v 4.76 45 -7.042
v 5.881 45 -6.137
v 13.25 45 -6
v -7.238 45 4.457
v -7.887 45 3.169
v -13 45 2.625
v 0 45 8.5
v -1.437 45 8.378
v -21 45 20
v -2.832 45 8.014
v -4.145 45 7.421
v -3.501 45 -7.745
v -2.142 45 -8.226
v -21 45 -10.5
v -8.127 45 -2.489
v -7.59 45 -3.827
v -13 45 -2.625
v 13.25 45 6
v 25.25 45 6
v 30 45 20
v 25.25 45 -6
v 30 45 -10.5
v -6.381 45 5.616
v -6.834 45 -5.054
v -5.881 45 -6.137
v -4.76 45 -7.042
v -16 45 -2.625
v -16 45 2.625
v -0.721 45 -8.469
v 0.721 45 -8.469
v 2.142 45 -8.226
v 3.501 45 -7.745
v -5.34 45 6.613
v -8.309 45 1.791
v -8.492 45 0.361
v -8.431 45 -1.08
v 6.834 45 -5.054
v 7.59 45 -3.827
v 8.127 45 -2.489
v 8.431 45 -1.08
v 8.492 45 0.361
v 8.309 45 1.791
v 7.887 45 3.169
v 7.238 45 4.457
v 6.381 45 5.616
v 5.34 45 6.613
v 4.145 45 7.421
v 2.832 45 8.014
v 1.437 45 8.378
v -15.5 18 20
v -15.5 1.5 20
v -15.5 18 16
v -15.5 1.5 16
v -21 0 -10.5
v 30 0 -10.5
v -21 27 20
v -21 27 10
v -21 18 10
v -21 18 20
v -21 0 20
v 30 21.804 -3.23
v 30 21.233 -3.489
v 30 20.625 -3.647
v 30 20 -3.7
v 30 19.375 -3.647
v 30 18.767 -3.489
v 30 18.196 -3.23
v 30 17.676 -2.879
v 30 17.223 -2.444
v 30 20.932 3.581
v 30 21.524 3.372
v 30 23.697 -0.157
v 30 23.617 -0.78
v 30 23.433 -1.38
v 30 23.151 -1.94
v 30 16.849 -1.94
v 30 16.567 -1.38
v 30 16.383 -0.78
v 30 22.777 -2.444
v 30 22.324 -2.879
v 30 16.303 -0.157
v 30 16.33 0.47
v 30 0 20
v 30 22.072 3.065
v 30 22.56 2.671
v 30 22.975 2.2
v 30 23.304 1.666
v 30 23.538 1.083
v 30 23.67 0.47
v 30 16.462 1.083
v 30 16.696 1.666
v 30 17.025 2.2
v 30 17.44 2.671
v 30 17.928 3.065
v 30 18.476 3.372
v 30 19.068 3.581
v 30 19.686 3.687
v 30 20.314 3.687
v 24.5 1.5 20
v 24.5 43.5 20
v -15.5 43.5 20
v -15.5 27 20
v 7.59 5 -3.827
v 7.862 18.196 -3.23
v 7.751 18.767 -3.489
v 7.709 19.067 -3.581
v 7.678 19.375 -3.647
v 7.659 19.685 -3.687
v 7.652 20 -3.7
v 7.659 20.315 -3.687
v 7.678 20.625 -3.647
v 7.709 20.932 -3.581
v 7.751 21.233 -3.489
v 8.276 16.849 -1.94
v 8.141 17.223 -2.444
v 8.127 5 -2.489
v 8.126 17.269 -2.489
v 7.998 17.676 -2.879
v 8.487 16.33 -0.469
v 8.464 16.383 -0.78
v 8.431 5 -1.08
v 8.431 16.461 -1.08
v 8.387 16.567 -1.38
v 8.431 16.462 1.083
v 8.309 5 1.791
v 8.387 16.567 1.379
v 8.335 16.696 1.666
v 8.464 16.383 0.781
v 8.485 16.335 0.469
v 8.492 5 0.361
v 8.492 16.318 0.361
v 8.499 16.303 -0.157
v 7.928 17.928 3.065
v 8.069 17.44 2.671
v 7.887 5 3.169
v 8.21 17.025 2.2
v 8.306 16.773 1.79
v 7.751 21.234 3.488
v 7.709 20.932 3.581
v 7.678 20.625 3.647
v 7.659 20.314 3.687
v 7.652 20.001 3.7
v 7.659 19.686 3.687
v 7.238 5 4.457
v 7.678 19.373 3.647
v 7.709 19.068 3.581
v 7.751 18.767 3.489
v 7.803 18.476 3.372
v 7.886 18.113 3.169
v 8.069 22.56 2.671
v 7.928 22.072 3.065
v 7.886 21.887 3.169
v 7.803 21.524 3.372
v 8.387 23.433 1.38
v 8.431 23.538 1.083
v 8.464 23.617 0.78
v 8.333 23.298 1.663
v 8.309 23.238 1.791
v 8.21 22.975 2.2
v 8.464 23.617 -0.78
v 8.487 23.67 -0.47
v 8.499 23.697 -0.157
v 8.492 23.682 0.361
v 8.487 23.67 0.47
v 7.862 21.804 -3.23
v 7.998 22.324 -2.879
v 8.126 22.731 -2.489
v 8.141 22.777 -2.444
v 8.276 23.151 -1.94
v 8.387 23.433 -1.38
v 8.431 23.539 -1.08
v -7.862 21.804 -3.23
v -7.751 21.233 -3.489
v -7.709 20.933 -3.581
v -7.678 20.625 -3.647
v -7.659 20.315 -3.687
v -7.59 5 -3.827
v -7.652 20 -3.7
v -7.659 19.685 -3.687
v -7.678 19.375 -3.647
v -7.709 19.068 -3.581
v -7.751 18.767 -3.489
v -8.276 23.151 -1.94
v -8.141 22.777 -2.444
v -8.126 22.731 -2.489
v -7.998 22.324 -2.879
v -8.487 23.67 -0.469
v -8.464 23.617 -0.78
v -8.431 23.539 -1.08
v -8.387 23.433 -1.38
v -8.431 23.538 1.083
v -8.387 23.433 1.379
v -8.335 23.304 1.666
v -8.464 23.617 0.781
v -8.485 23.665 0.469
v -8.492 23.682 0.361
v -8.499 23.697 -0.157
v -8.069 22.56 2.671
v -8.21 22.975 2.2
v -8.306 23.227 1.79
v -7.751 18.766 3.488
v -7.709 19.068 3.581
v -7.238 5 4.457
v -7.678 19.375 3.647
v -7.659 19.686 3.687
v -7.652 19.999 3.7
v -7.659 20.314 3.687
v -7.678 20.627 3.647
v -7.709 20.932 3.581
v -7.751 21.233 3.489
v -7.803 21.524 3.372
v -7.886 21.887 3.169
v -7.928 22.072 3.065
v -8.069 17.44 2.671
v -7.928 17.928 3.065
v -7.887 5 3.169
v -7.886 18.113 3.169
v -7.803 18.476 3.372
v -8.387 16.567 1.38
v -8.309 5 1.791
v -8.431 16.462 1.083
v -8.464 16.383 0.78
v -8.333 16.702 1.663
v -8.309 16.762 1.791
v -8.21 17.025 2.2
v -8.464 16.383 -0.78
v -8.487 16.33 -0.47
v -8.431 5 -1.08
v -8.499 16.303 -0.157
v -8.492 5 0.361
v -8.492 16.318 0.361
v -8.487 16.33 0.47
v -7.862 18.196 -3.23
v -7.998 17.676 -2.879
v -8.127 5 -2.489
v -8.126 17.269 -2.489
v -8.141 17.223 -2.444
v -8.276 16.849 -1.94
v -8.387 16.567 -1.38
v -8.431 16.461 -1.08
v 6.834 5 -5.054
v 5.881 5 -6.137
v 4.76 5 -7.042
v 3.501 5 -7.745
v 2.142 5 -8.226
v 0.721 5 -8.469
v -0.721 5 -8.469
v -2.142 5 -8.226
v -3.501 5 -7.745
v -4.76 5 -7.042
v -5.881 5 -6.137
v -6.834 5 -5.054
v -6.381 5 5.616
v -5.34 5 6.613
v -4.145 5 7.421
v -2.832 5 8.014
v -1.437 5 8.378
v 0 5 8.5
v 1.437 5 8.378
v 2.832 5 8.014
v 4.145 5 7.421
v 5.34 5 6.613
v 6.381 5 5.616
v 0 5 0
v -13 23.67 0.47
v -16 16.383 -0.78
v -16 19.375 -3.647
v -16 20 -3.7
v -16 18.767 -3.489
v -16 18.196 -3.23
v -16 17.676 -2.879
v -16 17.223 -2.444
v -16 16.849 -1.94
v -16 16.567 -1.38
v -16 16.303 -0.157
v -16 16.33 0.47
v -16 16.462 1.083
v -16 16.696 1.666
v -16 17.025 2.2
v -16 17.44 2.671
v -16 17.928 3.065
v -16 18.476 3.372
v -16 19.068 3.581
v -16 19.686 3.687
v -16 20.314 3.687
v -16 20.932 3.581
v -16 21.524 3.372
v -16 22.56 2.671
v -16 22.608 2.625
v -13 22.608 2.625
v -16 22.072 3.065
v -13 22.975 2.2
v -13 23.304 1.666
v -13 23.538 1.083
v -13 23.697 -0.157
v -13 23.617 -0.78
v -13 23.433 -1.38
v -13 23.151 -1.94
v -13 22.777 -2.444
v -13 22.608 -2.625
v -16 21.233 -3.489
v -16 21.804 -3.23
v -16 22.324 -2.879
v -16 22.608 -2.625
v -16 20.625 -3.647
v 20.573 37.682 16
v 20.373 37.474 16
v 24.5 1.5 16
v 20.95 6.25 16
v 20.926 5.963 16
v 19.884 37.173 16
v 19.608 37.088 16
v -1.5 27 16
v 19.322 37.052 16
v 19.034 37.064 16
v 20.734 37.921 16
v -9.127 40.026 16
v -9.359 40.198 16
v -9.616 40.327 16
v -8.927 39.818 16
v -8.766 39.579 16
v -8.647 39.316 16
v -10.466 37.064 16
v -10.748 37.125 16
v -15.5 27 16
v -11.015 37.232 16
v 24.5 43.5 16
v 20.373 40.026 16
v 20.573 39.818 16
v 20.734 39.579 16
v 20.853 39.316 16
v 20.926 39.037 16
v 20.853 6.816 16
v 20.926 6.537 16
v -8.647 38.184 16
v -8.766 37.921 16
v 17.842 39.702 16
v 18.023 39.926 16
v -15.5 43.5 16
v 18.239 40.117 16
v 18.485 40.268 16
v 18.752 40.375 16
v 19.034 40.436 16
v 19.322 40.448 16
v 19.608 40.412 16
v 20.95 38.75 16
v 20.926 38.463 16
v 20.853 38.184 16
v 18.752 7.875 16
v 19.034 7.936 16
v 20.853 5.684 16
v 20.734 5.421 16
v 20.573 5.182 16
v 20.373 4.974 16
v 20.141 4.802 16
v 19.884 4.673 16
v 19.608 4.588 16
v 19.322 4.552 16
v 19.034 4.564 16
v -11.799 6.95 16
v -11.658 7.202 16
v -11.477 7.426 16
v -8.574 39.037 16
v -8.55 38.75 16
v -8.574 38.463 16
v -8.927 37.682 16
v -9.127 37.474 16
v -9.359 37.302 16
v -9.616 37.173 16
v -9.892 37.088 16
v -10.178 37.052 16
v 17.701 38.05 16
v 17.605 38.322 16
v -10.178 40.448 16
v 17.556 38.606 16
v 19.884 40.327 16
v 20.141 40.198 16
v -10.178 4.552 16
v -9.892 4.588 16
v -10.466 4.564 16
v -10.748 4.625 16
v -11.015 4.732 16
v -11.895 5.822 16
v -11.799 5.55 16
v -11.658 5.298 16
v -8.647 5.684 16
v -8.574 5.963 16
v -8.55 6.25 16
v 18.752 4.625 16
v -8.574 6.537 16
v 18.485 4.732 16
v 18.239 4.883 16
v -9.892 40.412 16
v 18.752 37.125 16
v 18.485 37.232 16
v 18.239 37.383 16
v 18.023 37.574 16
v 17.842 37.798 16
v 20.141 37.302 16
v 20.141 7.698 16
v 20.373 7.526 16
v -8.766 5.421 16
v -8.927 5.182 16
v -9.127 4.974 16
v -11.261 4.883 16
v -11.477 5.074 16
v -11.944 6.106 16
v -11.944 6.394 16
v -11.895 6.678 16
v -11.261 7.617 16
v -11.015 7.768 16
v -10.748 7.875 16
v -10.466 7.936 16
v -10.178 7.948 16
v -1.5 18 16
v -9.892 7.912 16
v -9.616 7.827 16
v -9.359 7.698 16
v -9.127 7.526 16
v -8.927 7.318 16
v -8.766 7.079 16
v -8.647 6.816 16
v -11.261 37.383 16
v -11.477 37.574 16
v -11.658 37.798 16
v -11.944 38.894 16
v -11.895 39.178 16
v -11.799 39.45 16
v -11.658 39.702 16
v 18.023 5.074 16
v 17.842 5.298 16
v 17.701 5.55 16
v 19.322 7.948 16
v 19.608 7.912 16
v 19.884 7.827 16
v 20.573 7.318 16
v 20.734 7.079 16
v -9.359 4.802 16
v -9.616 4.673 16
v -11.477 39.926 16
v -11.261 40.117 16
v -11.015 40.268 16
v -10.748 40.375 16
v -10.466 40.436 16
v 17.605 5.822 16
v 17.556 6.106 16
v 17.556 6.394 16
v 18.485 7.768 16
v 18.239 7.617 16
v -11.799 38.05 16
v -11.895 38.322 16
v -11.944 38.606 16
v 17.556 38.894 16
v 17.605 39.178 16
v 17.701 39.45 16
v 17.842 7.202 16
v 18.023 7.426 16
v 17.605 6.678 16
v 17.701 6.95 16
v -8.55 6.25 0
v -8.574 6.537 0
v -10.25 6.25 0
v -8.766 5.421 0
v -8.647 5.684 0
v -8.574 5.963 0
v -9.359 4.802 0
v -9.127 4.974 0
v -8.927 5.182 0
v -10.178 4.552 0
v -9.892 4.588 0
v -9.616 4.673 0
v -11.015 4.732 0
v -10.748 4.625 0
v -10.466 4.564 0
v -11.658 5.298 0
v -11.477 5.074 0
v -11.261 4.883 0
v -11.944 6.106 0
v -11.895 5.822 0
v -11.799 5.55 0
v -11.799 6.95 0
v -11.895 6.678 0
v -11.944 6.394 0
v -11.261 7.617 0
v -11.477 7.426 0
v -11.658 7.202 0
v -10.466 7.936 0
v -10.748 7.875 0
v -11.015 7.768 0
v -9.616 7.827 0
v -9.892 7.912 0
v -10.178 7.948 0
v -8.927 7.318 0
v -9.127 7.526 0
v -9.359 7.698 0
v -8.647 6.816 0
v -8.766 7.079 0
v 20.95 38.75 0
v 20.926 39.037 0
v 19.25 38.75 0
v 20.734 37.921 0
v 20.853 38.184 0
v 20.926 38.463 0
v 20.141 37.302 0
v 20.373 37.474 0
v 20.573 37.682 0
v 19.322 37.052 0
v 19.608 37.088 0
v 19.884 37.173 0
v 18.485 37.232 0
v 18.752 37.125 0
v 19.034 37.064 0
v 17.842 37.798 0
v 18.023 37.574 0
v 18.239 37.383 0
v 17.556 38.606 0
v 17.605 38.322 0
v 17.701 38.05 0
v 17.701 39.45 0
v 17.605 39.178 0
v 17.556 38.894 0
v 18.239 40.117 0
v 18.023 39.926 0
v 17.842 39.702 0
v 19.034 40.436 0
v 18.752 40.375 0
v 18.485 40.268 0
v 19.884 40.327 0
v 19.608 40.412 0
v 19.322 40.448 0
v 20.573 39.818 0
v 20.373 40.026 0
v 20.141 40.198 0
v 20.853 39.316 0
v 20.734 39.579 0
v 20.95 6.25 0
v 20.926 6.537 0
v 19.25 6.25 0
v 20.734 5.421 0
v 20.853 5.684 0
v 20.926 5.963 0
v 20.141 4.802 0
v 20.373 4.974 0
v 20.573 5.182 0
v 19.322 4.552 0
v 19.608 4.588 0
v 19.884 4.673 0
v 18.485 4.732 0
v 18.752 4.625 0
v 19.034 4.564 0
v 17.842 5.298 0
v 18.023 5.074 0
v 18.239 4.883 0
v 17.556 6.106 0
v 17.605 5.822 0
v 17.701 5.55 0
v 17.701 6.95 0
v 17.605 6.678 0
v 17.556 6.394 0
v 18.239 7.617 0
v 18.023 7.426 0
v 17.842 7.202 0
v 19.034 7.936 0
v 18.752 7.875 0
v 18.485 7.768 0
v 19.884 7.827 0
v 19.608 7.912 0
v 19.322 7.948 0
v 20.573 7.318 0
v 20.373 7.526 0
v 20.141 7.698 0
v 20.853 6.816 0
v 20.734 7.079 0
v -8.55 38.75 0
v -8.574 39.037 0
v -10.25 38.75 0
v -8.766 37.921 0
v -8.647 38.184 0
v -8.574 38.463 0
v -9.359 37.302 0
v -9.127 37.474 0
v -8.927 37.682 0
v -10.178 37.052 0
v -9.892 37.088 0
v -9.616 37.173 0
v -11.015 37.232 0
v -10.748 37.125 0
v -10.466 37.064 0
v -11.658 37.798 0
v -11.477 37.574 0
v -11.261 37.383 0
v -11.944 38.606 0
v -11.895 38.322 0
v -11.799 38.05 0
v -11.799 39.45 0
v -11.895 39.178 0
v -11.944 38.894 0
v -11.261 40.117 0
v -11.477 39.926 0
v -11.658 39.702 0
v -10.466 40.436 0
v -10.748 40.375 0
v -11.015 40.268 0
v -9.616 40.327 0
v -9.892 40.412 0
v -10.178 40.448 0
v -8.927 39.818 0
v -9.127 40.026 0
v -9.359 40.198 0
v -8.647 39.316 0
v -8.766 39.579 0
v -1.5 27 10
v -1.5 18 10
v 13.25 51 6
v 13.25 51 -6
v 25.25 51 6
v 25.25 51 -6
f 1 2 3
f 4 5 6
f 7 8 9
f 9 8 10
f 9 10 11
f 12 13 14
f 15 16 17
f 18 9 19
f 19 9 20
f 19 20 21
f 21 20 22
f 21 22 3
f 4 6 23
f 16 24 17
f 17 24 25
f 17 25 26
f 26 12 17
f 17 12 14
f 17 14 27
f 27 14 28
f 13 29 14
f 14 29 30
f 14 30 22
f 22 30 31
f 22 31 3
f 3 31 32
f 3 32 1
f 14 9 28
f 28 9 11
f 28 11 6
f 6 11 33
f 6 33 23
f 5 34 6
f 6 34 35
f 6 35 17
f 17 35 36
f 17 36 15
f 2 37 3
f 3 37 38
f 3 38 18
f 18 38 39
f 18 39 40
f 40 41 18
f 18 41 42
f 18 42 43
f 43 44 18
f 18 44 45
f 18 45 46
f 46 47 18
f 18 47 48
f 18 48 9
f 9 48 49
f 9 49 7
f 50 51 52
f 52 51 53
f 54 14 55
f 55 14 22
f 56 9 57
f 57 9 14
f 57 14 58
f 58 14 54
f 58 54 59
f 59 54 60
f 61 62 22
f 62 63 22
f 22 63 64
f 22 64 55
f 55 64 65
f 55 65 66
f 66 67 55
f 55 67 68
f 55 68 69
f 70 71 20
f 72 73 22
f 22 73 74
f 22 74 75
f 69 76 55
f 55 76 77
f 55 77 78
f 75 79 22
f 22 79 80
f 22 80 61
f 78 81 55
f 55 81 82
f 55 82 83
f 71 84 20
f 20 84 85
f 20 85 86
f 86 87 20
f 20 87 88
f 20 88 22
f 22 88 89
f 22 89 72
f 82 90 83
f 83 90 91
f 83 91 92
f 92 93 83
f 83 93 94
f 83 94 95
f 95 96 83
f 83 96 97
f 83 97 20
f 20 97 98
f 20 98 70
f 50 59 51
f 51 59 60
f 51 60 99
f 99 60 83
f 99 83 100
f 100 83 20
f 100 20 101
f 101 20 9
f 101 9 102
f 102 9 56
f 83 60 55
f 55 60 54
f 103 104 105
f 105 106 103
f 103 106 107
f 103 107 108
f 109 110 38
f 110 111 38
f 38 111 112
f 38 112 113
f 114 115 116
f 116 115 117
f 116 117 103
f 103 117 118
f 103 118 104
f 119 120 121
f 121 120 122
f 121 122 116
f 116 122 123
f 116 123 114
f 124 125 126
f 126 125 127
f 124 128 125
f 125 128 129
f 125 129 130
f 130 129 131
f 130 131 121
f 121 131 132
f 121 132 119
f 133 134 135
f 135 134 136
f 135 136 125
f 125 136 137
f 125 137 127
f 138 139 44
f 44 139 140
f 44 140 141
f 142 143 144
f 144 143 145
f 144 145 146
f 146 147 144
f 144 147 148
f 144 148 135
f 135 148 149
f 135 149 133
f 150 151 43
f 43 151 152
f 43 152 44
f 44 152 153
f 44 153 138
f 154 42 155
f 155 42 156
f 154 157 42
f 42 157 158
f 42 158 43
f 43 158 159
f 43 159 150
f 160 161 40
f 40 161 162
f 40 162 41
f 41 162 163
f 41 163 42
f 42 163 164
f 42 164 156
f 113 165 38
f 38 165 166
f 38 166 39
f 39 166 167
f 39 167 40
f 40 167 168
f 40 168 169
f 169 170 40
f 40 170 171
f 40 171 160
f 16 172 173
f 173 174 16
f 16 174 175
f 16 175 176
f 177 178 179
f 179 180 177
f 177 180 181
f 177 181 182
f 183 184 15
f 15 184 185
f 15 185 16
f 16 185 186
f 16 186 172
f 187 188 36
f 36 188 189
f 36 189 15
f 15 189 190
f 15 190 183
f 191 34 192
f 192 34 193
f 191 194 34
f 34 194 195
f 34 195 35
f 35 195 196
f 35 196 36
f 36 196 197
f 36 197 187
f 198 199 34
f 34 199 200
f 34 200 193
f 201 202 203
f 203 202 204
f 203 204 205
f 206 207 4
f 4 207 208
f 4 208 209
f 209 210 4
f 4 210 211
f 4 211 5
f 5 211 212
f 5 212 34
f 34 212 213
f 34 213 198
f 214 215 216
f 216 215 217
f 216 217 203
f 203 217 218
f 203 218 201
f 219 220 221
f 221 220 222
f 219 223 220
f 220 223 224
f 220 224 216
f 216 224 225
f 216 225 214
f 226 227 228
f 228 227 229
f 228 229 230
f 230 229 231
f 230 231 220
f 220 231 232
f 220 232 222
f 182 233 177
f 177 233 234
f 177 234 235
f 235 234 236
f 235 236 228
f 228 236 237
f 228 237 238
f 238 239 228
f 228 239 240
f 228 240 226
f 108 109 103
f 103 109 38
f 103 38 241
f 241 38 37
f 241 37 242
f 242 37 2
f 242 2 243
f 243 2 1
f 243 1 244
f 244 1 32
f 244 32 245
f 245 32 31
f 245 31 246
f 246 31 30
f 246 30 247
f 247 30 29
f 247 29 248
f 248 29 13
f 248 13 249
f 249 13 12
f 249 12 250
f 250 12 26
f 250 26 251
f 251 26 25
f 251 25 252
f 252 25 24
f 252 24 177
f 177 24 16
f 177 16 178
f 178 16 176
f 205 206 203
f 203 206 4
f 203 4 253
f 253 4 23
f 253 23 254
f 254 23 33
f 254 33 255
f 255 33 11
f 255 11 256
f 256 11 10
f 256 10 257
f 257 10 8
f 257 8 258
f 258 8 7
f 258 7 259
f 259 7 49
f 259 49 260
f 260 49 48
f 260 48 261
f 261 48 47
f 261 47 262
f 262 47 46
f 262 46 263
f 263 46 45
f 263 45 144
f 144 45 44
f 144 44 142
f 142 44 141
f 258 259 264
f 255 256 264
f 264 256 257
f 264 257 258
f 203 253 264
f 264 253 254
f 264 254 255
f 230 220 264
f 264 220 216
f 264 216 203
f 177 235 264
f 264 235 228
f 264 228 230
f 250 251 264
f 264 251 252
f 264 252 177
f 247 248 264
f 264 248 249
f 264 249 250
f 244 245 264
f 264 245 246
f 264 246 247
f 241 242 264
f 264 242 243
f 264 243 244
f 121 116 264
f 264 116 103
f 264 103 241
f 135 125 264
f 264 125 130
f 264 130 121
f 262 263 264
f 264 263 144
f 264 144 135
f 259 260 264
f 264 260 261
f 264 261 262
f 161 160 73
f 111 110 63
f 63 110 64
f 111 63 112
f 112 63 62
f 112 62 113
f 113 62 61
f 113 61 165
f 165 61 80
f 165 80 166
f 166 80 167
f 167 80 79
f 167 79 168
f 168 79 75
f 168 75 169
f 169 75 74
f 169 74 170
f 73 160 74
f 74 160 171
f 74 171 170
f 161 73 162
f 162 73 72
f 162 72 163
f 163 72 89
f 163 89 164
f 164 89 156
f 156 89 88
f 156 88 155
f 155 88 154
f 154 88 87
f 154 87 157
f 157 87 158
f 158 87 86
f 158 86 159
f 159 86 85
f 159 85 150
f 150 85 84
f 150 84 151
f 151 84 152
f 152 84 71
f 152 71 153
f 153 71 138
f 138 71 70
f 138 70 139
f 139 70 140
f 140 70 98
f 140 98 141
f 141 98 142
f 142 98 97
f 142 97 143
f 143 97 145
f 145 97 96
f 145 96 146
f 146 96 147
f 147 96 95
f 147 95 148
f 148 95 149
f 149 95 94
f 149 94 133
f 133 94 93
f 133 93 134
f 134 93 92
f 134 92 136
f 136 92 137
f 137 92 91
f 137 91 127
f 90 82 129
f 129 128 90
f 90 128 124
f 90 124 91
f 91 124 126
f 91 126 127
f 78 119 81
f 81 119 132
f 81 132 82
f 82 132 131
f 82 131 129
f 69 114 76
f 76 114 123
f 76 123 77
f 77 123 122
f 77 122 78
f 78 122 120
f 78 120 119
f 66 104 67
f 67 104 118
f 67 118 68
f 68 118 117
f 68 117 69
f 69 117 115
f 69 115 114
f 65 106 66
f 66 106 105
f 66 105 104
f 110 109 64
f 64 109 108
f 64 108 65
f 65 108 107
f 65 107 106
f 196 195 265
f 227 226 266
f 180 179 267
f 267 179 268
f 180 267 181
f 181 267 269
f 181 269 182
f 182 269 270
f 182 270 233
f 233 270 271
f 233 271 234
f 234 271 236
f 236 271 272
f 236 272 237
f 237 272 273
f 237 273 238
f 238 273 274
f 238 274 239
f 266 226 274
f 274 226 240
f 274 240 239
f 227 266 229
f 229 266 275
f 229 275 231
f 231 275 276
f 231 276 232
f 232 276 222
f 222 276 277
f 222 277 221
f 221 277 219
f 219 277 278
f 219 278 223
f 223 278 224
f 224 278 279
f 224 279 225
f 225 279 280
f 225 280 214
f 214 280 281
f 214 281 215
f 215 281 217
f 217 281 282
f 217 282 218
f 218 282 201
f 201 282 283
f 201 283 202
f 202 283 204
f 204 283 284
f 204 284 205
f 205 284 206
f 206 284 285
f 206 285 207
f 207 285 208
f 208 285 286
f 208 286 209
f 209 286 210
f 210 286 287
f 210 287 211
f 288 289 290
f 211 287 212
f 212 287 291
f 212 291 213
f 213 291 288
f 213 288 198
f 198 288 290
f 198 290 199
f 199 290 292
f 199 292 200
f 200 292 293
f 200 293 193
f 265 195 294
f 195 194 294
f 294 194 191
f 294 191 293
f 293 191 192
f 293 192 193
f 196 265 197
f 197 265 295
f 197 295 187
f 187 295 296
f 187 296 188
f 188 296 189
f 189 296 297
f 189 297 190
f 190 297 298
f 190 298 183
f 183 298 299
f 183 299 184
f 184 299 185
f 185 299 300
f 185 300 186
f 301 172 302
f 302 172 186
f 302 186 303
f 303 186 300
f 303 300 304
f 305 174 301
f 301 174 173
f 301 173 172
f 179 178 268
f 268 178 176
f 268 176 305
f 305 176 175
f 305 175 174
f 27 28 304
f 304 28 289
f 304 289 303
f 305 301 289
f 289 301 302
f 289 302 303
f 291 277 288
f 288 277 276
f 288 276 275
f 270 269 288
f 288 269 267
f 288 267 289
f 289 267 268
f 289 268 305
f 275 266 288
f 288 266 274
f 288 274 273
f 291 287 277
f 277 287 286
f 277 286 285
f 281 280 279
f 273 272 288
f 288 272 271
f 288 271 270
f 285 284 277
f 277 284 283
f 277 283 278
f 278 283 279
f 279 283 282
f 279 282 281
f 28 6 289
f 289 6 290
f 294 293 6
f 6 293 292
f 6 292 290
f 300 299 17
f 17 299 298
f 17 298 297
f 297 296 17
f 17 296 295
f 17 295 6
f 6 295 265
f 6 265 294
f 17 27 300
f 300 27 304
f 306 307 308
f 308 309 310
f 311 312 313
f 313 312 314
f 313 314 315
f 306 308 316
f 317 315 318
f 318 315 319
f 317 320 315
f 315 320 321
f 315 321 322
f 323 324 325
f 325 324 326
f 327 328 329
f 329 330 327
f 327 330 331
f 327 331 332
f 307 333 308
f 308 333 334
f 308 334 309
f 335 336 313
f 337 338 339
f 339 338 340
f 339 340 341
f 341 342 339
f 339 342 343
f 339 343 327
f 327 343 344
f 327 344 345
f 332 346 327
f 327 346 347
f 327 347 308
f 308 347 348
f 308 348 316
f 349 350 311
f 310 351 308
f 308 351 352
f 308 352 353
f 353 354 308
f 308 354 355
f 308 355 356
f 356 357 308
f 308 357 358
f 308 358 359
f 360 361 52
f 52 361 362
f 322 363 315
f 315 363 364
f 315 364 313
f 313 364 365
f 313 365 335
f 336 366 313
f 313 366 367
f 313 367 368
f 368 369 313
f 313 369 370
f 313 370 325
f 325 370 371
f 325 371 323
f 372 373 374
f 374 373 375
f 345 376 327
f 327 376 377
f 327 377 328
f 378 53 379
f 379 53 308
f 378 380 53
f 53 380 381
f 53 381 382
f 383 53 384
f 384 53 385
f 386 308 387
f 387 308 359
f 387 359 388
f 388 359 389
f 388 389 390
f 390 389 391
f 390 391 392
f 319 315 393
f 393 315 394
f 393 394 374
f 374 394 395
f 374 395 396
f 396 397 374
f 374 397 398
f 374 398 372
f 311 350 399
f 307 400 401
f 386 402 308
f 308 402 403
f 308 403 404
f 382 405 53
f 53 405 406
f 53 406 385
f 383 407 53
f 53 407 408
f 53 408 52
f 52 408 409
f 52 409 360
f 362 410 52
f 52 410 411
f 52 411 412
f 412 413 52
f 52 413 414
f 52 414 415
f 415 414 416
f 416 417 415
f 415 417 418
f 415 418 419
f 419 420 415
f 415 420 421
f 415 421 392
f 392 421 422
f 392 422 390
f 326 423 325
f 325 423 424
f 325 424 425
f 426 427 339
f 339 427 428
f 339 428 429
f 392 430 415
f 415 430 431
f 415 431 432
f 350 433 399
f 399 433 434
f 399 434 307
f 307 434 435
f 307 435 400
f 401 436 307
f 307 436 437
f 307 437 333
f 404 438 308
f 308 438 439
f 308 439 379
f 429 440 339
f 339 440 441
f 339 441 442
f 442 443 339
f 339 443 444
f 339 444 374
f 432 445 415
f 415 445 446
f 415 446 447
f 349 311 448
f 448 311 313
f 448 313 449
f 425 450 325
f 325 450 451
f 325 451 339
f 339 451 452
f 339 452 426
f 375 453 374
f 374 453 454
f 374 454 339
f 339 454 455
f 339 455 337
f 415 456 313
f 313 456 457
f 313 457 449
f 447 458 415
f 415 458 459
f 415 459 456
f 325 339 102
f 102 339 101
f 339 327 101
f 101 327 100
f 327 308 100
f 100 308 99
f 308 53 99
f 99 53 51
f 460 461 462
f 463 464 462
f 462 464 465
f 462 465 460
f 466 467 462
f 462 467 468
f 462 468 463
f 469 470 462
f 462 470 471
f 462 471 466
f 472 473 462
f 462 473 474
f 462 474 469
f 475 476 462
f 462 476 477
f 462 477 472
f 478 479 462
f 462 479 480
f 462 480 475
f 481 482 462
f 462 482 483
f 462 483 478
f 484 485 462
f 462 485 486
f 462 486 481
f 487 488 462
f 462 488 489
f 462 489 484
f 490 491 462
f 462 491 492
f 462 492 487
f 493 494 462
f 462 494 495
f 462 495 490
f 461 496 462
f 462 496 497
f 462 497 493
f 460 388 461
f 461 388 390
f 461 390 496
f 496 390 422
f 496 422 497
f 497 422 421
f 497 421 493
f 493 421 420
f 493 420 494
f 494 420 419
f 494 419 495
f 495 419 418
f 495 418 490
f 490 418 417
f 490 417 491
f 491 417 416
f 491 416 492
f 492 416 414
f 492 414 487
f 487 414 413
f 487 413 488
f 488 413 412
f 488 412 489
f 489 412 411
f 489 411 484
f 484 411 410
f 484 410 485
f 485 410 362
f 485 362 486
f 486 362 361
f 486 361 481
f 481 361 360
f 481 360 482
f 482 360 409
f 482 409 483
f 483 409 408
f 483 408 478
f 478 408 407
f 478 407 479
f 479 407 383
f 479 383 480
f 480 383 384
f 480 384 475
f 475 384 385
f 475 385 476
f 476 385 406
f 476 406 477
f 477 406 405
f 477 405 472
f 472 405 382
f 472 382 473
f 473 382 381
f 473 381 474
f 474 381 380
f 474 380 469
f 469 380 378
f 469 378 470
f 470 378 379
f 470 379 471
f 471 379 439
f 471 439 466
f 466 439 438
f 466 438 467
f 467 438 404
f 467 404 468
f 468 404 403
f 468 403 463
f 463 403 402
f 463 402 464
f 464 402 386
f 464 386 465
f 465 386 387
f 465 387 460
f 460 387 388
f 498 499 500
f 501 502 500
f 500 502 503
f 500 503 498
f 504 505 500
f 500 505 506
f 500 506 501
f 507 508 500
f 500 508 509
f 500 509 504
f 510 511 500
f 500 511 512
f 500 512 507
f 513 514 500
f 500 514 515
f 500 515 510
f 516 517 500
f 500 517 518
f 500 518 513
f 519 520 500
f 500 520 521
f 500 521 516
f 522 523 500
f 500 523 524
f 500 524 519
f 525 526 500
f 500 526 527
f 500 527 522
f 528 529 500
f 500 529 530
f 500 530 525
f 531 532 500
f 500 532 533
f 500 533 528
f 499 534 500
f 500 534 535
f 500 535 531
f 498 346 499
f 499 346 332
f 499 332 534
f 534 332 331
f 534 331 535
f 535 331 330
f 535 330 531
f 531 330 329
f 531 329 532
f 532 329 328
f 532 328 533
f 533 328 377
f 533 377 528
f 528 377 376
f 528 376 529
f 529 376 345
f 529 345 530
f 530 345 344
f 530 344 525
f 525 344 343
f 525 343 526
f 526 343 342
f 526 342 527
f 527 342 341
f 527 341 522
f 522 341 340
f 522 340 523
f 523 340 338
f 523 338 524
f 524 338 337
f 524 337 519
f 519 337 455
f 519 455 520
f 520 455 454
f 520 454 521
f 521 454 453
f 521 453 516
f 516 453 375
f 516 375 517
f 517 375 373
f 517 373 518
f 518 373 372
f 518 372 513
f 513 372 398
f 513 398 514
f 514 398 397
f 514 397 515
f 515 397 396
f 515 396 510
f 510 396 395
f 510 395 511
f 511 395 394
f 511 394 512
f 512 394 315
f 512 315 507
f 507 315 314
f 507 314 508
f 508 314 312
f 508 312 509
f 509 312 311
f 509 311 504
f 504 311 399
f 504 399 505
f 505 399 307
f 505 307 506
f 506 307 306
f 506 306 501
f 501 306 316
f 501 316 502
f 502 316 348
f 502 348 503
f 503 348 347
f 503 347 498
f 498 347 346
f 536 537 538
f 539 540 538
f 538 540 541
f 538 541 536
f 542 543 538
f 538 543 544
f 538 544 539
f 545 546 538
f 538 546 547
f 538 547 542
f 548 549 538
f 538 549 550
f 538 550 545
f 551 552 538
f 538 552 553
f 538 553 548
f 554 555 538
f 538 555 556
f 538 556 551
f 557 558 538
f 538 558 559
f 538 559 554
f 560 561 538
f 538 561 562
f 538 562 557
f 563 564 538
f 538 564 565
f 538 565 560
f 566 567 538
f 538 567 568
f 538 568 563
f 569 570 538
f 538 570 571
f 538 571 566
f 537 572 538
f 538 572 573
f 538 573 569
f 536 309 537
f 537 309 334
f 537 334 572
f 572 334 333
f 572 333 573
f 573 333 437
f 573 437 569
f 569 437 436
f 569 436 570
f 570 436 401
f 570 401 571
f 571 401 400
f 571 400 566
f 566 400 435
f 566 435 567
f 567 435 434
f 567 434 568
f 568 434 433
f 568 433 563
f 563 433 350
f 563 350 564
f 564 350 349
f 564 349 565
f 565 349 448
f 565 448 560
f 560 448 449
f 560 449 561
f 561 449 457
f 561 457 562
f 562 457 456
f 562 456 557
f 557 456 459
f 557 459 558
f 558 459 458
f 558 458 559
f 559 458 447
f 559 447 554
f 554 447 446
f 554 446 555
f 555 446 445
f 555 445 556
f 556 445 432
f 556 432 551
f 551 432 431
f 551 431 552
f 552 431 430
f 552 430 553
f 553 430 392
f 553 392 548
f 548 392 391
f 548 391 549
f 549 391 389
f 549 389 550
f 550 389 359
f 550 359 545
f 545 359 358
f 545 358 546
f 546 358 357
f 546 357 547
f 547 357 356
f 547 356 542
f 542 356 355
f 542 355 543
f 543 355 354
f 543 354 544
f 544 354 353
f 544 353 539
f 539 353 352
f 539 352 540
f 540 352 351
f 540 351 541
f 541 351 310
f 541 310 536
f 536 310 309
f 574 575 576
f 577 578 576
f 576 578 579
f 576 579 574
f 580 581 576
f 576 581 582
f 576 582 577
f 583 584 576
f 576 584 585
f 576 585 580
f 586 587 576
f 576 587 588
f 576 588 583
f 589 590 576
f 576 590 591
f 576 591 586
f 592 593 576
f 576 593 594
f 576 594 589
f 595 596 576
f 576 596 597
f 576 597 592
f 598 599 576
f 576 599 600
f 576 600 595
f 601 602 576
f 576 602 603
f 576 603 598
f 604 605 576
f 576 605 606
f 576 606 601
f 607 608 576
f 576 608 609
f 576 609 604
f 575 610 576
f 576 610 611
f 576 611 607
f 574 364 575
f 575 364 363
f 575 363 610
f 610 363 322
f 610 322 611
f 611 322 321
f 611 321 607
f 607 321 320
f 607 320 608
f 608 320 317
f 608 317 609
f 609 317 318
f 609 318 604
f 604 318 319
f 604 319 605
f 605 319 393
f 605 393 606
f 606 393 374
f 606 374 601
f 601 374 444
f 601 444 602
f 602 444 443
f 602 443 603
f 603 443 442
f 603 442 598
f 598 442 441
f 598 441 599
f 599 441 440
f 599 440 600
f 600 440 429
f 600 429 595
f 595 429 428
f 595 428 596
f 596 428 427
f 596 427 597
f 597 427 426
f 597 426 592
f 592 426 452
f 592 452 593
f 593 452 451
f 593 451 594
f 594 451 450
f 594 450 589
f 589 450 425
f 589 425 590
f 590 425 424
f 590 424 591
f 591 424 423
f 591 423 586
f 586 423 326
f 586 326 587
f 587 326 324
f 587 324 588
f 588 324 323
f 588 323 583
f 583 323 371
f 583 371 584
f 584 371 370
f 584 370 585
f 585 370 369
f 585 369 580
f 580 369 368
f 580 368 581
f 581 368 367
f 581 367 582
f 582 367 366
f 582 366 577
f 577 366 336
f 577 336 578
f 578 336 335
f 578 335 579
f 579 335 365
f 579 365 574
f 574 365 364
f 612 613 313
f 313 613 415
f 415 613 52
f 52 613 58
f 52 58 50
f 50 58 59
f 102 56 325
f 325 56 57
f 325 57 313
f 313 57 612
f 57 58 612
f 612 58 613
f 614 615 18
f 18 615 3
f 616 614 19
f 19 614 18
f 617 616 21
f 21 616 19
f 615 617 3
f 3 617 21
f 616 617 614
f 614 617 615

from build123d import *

# Parameters (mm, degrees)
BASE_R                        = 10.5
CUTLURE_TUBE_HOUSING_DEPTH    = 45
SKETCH1_W                     = 51
SKETCH1_H                     = 30.5
DETECTOR_LASER_HOUSING_DEPTH  = 45
CULTURE_SLOT_R                = 8.5
CULTURE_TUBE_SLOT_DEPTH       = 40
LASER_PORT_DEPTH              = 58.662812973
LASER_PORT_DEPTH_BACK         = 16
SKETCH3_R                     = 3.7
CUT_EXTRUDE3_REACH            = 59.663
CUT_EXTRUDE3_END_RADIUS       = 3.7
SKETCH4_W                     = 3
SKETCH4_H                     = 5.25
LED_DISPLAY_SCREW_HOLES_D     = 3.4
LED_DISPLAY_SCREW_HOLES_DEPTH = 20
SKETCH14_W                    = 40
SKETCH14_H                    = 42
CUT_EXTRUDE4_DEPTH            = 4
SKETCH16_W                    = 19.5
SKETCH16_H                    = 9
CUT_EXTRUDE6_DEPTH            = 10
SKETCH17_W                    = 12
SKETCH17_H                    = 12
BOSS_EXTRUDE3_DEPTH           = 6


with BuildPart() as part:
    # Base → Cutlure Tube Housing (new body)
    with BuildSketch(Plane(origin=(0, 0, 0), x_dir=(1, 0, 0), z_dir=(0, 1, 0))):
        with Locations(Location((0, 0, 0), (0, 0, 90))):
            Circle(BASE_R)
    extrude(amount=CUTLURE_TUBE_HOUSING_DEPTH)

    # Sketch1 → Detector+Laser Housing (add)
    with BuildSketch(Plane(origin=(0, 45, 0), x_dir=(1, 0, 0), z_dir=(0, 1, 0))):
        with Locations((4.5, -4.75)):
            Rectangle(SKETCH1_W, SKETCH1_H)
    extrude(amount=-DETECTOR_LASER_HOUSING_DEPTH)

    # Culture Slot → Culture Tube Slot (cut)
    with BuildSketch(Plane(origin=(0, 45, 0), x_dir=(1, 0, 0), z_dir=(0, 1, 0))):
        with Locations(Location((0, 0, 0), (0, 0, 270))):
            Circle(CULTURE_SLOT_R)
    extrude(amount=-CULTURE_TUBE_SLOT_DEPTH, mode=Mode.SUBTRACT)

    # Sketch3 → Laser Port (cut, two sides: drawn at the far end of the back side and taken through both)
    with BuildSketch(Plane(origin=(0, 0, 0), x_dir=(0, 0, -1), z_dir=(1, 0, 0)).offset(-LASER_PORT_DEPTH_BACK)):
        with Locations((0, 20)):
            Circle(SKETCH3_R)
    extrude(amount=LASER_PORT_DEPTH + LASER_PORT_DEPTH_BACK, mode=Mode.SUBTRACT)

    # Cut-Extrude3: up to this cylinder (the profile starts outside it)
    cut_extrude3_end = Plane(origin=(-14.5, 20, 0), z_dir=(1, 0, 0)) * Cylinder(CUT_EXTRUDE3_END_RADIUS, 127.726, mode=Mode.PRIVATE)
    # Sketch4 → Cut-Extrude3 (cut, up to the surface)
    with BuildSketch(Plane(origin=(0, 45, 0), x_dir=(1, 0, 0), z_dir=(0, 1, 0)), mode=Mode.PRIVATE) as cut_extrude3_sk1:
        with Locations((-14.5, 0)):
            Rectangle(SKETCH4_W, SKETCH4_H)
    cut_extrude3_tool1 = extrude(cut_extrude3_sk1.sketch, amount=-CUT_EXTRUDE3_REACH, mode=Mode.PRIVATE) - cut_extrude3_end
    add(cut_extrude3_tool1.solids().sort_by_distance((-14.5, 45, 0))[0], mode=Mode.SUBTRACT)

    # LED display Screw Holes
    with Locations(Plane.XY.offset(20)):
        with Locations((-10.25, 38.75), (-10.25, 6.25), (19.25, 38.75), (19.25, 6.25)):
            Hole(LED_DISPLAY_SCREW_HOLES_D / 2, depth=LED_DISPLAY_SCREW_HOLES_DEPTH)

    # Sketch14 → Cut-Extrude4 (cut)
    with BuildSketch(Plane.XY.offset(20)):
        with Locations((4.5, 22.5)):
            Rectangle(SKETCH14_W, SKETCH14_H)
    extrude(amount=-CUT_EXTRUDE4_DEPTH, mode=Mode.SUBTRACT)

    # Sketch16 → Cut-Extrude6 (cut)
    with BuildSketch(Plane.XY.offset(20)):
        with Locations((-11.25, 22.5)):
            Rectangle(SKETCH16_W, SKETCH16_H)
    extrude(amount=-CUT_EXTRUDE6_DEPTH, mode=Mode.SUBTRACT)

    # Sketch17 → Boss-Extrude3 (add)
    with BuildSketch(Plane(origin=(0, 45, 0), x_dir=(1, 0, 0), z_dir=(0, 1, 0))):
        with Locations((19.25, 0)):
            Rectangle(SKETCH17_W, SKETCH17_H)
    extrude(amount=BOSS_EXTRUDE3_DEPTH)


solid = part.part
